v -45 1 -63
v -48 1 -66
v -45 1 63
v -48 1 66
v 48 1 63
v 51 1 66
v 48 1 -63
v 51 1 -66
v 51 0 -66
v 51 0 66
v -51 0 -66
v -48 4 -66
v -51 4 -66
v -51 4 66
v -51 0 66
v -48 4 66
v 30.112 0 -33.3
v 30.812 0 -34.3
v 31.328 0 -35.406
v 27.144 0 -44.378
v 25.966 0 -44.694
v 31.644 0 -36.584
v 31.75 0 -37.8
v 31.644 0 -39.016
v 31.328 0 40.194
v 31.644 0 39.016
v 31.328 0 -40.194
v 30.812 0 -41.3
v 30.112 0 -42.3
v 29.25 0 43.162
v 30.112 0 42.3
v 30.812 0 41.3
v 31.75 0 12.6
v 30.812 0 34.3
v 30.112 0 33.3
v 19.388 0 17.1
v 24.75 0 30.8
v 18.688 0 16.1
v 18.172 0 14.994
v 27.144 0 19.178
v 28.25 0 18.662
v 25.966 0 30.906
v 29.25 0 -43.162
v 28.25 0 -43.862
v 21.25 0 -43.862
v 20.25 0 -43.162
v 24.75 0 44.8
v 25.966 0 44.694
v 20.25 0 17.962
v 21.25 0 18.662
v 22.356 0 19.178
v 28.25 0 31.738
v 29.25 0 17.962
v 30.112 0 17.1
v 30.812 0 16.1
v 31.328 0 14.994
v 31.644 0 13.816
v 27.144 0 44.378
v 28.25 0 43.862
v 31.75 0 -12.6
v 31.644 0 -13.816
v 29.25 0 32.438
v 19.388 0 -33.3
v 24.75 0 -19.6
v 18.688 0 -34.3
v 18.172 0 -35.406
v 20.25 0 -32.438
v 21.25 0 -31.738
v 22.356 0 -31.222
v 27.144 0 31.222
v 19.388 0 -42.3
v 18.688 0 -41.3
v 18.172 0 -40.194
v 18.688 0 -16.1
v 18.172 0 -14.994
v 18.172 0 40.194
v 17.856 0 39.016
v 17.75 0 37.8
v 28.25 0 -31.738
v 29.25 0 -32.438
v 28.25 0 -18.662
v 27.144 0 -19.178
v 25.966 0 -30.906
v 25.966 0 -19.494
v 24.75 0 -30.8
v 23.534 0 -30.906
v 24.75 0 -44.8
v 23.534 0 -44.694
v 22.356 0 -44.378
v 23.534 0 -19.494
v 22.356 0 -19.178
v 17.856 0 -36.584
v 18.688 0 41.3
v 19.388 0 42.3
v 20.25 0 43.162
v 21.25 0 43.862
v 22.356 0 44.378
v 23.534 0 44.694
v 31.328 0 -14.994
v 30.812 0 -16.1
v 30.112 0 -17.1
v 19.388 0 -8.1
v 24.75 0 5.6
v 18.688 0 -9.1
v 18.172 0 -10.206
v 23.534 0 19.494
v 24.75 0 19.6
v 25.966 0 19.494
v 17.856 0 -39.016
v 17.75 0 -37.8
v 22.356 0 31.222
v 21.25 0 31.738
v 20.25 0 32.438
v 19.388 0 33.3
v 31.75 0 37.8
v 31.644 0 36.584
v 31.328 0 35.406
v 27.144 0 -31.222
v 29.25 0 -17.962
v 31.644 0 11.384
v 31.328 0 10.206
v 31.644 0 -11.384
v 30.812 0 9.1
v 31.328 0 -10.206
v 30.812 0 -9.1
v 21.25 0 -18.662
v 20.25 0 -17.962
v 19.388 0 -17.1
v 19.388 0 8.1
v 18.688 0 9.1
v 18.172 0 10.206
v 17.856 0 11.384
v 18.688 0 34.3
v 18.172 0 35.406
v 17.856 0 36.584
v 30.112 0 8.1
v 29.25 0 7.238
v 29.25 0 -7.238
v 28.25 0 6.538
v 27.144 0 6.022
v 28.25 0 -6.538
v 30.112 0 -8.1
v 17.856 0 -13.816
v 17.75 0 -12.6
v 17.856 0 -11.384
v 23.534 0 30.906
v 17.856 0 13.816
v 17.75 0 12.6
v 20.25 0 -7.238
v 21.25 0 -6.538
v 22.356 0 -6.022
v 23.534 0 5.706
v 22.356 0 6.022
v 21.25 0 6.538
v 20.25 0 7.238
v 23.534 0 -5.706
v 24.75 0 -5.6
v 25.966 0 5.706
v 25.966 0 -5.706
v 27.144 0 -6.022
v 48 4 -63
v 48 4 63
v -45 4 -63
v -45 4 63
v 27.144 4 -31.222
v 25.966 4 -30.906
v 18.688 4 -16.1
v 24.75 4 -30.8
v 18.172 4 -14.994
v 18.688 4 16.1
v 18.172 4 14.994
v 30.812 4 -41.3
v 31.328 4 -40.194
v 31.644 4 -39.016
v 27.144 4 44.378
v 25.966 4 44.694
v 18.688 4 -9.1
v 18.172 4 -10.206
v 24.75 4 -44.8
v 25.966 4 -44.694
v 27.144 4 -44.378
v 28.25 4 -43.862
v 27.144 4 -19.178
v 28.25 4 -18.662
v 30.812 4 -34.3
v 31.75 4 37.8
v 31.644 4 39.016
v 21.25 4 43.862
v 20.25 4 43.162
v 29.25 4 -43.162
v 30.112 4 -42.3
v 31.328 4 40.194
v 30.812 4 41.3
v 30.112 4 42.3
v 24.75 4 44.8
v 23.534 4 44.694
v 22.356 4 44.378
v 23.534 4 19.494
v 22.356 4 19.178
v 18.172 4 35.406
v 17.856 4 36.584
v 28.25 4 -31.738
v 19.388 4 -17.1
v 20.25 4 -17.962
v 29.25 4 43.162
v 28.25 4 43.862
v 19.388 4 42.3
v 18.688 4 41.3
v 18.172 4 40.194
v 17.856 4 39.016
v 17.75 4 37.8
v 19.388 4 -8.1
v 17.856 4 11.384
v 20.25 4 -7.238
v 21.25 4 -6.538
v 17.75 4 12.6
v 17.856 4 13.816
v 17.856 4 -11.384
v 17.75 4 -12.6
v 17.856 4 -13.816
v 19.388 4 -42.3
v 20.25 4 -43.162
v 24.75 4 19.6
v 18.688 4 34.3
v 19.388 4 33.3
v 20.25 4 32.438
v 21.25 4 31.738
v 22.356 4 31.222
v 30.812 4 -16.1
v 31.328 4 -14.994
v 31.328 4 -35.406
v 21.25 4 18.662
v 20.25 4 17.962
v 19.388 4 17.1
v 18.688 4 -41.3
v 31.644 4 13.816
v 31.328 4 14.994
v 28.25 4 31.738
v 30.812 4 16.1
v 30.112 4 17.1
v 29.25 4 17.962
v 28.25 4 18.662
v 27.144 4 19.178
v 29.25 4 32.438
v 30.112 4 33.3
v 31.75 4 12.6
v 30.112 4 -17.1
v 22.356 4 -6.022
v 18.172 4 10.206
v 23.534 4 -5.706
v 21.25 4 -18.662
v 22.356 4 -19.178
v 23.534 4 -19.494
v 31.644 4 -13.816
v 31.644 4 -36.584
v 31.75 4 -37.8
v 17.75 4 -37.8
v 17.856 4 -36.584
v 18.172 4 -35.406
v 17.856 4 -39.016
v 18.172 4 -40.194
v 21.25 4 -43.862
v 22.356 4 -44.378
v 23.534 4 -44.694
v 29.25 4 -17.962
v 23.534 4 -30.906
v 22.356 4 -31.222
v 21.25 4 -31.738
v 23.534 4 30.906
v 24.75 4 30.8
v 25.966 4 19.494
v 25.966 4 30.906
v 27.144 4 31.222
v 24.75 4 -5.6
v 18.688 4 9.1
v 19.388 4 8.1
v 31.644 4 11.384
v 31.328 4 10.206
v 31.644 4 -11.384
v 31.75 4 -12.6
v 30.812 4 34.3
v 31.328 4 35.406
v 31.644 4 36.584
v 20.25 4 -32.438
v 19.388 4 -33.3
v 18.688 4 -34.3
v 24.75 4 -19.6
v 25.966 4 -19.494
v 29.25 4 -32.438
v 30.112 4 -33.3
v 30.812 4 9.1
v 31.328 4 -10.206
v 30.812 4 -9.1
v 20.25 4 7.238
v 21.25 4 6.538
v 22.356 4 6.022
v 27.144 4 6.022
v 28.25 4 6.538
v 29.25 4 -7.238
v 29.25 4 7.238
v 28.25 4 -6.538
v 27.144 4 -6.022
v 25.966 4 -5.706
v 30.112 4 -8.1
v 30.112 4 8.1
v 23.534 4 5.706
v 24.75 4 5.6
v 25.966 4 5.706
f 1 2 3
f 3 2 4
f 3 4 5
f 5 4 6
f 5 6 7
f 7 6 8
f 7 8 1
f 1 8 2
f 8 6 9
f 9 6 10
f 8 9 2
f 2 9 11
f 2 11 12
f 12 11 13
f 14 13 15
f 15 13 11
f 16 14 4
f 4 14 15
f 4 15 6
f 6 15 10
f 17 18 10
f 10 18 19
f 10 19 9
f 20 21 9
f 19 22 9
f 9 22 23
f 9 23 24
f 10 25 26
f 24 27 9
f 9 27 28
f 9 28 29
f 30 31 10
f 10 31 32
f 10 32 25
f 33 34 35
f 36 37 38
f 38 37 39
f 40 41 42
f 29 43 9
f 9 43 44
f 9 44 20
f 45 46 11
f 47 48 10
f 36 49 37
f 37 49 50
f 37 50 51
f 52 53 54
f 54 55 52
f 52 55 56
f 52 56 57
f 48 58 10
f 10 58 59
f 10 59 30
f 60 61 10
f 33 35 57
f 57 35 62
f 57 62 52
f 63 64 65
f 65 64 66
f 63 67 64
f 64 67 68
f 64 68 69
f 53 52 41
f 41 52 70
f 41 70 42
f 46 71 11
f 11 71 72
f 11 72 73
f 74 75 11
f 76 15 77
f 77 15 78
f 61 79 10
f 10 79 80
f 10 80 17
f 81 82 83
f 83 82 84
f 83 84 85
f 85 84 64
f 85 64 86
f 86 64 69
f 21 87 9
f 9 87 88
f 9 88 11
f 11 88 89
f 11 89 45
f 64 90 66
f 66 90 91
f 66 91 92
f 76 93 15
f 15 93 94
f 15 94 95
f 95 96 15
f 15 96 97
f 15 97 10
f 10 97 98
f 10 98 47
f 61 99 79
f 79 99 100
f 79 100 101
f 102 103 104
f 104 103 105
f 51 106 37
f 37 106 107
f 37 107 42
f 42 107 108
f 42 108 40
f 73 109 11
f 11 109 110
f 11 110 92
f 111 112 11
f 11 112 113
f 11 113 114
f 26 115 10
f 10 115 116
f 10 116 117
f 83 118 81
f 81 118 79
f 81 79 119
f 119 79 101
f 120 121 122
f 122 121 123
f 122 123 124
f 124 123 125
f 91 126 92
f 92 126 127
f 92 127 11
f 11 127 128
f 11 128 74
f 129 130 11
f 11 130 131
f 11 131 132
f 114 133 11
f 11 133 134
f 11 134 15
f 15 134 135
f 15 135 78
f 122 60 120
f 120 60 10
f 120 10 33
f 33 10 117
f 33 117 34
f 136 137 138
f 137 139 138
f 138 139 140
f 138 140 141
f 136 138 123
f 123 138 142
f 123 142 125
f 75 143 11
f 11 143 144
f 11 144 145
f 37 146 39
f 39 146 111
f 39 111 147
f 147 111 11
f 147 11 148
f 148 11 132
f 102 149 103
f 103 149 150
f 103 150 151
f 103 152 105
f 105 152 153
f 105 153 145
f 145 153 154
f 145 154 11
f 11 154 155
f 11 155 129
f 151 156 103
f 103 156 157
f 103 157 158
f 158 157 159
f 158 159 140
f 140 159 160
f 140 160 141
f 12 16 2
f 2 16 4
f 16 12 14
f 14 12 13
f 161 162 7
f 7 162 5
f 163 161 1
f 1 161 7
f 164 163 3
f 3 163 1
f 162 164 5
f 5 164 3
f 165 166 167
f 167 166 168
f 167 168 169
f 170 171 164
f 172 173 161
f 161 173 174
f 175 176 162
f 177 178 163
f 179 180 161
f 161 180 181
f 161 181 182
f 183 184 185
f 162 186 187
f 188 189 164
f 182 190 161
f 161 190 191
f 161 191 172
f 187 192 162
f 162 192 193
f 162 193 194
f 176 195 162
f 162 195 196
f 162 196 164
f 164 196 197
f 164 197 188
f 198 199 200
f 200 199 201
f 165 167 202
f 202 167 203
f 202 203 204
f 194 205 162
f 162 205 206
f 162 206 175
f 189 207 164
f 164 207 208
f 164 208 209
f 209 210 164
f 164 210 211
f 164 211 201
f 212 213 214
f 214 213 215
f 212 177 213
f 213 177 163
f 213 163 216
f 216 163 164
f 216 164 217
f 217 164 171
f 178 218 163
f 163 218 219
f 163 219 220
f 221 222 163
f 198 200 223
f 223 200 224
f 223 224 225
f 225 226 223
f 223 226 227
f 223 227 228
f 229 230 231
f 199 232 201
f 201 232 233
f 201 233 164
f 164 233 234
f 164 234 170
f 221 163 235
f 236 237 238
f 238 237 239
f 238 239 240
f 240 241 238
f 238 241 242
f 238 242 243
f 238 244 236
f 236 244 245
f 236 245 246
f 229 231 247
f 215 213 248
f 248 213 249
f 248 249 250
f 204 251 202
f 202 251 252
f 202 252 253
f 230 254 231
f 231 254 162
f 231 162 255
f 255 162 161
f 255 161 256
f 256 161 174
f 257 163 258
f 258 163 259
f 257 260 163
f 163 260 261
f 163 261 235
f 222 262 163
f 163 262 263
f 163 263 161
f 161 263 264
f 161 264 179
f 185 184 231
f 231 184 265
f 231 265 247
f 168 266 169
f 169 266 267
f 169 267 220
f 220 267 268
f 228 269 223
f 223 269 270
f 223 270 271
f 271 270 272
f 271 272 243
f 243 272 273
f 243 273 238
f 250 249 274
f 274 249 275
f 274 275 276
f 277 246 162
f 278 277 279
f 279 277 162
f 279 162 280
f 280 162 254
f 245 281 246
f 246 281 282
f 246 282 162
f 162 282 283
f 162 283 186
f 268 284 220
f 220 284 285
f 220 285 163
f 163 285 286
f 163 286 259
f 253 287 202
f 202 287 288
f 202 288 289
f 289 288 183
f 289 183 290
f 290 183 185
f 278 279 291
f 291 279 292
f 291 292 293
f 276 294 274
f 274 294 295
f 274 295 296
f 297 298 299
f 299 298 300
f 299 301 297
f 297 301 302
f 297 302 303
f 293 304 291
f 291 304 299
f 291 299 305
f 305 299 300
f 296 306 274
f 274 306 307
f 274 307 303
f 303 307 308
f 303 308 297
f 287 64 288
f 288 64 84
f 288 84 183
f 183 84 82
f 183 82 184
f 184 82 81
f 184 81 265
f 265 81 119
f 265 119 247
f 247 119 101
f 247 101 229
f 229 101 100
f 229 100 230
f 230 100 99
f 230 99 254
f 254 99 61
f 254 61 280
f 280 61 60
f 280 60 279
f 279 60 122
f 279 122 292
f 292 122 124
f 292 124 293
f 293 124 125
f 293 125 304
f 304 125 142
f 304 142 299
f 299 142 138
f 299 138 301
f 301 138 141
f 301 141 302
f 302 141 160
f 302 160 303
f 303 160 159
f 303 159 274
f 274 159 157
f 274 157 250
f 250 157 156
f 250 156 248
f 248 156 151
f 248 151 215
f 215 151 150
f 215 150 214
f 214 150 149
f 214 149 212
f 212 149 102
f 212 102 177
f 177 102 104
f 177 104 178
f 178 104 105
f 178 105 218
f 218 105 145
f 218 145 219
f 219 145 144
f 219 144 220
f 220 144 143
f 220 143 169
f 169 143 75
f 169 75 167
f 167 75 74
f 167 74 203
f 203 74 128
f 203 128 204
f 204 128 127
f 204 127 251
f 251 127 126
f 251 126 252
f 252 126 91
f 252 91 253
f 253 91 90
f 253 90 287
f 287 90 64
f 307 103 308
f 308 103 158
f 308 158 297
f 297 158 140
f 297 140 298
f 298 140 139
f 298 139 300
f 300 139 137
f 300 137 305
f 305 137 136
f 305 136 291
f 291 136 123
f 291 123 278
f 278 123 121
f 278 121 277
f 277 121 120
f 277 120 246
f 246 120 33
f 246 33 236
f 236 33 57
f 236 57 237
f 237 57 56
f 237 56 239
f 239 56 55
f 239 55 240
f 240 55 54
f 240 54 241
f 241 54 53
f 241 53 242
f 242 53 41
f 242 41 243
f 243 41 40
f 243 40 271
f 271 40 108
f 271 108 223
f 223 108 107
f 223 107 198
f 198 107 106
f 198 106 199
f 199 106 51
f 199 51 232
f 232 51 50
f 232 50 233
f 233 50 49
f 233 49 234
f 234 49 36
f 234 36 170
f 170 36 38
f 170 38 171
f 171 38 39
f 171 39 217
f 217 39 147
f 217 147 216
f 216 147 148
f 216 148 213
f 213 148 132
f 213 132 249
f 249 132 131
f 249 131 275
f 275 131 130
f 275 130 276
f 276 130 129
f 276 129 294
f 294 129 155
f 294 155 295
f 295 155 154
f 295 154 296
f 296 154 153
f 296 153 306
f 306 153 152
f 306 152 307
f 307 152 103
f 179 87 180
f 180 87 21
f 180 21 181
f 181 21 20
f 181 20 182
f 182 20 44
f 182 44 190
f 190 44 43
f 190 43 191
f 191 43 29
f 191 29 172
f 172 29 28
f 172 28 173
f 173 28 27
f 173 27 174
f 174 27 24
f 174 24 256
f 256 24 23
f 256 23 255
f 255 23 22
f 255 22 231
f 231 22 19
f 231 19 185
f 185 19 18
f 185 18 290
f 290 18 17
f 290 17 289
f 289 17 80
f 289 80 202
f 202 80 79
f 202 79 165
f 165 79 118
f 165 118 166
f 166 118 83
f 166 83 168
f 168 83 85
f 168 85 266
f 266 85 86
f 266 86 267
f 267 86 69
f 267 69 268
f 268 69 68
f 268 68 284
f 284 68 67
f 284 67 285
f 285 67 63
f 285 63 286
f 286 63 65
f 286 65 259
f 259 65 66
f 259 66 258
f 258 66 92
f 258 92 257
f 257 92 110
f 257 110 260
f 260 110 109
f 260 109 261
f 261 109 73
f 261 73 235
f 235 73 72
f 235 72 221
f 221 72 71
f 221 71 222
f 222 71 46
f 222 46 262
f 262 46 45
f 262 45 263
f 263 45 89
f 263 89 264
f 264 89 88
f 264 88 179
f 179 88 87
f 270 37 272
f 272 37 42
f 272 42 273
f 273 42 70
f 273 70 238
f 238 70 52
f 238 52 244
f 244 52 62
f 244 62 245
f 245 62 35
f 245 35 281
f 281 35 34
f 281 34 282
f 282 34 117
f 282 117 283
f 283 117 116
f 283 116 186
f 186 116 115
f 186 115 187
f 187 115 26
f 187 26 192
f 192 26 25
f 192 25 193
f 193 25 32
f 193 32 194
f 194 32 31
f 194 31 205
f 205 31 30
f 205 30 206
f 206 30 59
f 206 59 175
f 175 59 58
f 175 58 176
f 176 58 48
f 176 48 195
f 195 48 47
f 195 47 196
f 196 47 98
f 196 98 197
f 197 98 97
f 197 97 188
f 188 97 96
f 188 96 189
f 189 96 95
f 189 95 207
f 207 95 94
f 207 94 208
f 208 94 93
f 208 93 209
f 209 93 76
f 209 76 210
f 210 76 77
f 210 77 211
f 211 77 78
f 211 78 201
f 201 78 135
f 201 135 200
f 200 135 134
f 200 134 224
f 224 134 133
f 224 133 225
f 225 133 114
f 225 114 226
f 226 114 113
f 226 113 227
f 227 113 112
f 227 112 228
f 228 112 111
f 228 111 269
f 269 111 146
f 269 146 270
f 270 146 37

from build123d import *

# Parameters (mm, degrees)
SKETCH1_W           = 102
SKETCH1_H           = 132
BOSS_EXTRUDE2_DEPTH = 1
SKETCH2_W           = 3
SKETCH2_H           = 132
BOSS_EXTRUDE5_DEPTH = 3
SKETCH3_W           = 93
SKETCH3_H           = 126
BOSS_EXTRUDE6_DEPTH = 3
SKETCH4_R           = 7
CUT_EXTRUDE1_DEPTH  = 4


with BuildPart() as part:
    # Sketch1 → Boss-Extrude2 (new body)
    with BuildSketch(Plane(origin=(0, 0, 0), x_dir=(1, 0, 0), z_dir=(0, 1, 0))):
        Rectangle(SKETCH1_W, SKETCH1_H)
    extrude(amount=BOSS_EXTRUDE2_DEPTH)

    # Sketch2 → Boss-Extrude5 (add)
    with BuildSketch(Plane(origin=(0, 1, 0), x_dir=(1, 0, 0), z_dir=(0, 1, 0))):
        with Locations((-49.5, 0)):
            Rectangle(SKETCH2_W, SKETCH2_H)
    extrude(amount=BOSS_EXTRUDE5_DEPTH)

    # Sketch3 → Boss-Extrude6 (add)
    with BuildSketch(Plane(origin=(0, 1, 0), x_dir=(1, 0, 0), z_dir=(0, 1, 0))):
        with Locations((1.5, 0)):
            Rectangle(SKETCH3_W, SKETCH3_H)
    extrude(amount=BOSS_EXTRUDE6_DEPTH)

    # Sketch4 → Cut-Extrude1 (cut)
    with BuildSketch(Plane(origin=(0, 0, 0), x_dir=(1, 0, 0), z_dir=(0, 1, 0))):
        with Locations((24.75, 12.6)):
            Circle(SKETCH4_R)
        with Locations((24.75, -12.6)):
            Circle(SKETCH4_R)
        with Locations((24.75, 37.8)):
            Circle(SKETCH4_R)
        with Locations((24.75, -37.8)):
            Circle(SKETCH4_R)
    extrude(amount=CUT_EXTRUDE1_DEPTH, mode=Mode.SUBTRACT)


solid = part.part
